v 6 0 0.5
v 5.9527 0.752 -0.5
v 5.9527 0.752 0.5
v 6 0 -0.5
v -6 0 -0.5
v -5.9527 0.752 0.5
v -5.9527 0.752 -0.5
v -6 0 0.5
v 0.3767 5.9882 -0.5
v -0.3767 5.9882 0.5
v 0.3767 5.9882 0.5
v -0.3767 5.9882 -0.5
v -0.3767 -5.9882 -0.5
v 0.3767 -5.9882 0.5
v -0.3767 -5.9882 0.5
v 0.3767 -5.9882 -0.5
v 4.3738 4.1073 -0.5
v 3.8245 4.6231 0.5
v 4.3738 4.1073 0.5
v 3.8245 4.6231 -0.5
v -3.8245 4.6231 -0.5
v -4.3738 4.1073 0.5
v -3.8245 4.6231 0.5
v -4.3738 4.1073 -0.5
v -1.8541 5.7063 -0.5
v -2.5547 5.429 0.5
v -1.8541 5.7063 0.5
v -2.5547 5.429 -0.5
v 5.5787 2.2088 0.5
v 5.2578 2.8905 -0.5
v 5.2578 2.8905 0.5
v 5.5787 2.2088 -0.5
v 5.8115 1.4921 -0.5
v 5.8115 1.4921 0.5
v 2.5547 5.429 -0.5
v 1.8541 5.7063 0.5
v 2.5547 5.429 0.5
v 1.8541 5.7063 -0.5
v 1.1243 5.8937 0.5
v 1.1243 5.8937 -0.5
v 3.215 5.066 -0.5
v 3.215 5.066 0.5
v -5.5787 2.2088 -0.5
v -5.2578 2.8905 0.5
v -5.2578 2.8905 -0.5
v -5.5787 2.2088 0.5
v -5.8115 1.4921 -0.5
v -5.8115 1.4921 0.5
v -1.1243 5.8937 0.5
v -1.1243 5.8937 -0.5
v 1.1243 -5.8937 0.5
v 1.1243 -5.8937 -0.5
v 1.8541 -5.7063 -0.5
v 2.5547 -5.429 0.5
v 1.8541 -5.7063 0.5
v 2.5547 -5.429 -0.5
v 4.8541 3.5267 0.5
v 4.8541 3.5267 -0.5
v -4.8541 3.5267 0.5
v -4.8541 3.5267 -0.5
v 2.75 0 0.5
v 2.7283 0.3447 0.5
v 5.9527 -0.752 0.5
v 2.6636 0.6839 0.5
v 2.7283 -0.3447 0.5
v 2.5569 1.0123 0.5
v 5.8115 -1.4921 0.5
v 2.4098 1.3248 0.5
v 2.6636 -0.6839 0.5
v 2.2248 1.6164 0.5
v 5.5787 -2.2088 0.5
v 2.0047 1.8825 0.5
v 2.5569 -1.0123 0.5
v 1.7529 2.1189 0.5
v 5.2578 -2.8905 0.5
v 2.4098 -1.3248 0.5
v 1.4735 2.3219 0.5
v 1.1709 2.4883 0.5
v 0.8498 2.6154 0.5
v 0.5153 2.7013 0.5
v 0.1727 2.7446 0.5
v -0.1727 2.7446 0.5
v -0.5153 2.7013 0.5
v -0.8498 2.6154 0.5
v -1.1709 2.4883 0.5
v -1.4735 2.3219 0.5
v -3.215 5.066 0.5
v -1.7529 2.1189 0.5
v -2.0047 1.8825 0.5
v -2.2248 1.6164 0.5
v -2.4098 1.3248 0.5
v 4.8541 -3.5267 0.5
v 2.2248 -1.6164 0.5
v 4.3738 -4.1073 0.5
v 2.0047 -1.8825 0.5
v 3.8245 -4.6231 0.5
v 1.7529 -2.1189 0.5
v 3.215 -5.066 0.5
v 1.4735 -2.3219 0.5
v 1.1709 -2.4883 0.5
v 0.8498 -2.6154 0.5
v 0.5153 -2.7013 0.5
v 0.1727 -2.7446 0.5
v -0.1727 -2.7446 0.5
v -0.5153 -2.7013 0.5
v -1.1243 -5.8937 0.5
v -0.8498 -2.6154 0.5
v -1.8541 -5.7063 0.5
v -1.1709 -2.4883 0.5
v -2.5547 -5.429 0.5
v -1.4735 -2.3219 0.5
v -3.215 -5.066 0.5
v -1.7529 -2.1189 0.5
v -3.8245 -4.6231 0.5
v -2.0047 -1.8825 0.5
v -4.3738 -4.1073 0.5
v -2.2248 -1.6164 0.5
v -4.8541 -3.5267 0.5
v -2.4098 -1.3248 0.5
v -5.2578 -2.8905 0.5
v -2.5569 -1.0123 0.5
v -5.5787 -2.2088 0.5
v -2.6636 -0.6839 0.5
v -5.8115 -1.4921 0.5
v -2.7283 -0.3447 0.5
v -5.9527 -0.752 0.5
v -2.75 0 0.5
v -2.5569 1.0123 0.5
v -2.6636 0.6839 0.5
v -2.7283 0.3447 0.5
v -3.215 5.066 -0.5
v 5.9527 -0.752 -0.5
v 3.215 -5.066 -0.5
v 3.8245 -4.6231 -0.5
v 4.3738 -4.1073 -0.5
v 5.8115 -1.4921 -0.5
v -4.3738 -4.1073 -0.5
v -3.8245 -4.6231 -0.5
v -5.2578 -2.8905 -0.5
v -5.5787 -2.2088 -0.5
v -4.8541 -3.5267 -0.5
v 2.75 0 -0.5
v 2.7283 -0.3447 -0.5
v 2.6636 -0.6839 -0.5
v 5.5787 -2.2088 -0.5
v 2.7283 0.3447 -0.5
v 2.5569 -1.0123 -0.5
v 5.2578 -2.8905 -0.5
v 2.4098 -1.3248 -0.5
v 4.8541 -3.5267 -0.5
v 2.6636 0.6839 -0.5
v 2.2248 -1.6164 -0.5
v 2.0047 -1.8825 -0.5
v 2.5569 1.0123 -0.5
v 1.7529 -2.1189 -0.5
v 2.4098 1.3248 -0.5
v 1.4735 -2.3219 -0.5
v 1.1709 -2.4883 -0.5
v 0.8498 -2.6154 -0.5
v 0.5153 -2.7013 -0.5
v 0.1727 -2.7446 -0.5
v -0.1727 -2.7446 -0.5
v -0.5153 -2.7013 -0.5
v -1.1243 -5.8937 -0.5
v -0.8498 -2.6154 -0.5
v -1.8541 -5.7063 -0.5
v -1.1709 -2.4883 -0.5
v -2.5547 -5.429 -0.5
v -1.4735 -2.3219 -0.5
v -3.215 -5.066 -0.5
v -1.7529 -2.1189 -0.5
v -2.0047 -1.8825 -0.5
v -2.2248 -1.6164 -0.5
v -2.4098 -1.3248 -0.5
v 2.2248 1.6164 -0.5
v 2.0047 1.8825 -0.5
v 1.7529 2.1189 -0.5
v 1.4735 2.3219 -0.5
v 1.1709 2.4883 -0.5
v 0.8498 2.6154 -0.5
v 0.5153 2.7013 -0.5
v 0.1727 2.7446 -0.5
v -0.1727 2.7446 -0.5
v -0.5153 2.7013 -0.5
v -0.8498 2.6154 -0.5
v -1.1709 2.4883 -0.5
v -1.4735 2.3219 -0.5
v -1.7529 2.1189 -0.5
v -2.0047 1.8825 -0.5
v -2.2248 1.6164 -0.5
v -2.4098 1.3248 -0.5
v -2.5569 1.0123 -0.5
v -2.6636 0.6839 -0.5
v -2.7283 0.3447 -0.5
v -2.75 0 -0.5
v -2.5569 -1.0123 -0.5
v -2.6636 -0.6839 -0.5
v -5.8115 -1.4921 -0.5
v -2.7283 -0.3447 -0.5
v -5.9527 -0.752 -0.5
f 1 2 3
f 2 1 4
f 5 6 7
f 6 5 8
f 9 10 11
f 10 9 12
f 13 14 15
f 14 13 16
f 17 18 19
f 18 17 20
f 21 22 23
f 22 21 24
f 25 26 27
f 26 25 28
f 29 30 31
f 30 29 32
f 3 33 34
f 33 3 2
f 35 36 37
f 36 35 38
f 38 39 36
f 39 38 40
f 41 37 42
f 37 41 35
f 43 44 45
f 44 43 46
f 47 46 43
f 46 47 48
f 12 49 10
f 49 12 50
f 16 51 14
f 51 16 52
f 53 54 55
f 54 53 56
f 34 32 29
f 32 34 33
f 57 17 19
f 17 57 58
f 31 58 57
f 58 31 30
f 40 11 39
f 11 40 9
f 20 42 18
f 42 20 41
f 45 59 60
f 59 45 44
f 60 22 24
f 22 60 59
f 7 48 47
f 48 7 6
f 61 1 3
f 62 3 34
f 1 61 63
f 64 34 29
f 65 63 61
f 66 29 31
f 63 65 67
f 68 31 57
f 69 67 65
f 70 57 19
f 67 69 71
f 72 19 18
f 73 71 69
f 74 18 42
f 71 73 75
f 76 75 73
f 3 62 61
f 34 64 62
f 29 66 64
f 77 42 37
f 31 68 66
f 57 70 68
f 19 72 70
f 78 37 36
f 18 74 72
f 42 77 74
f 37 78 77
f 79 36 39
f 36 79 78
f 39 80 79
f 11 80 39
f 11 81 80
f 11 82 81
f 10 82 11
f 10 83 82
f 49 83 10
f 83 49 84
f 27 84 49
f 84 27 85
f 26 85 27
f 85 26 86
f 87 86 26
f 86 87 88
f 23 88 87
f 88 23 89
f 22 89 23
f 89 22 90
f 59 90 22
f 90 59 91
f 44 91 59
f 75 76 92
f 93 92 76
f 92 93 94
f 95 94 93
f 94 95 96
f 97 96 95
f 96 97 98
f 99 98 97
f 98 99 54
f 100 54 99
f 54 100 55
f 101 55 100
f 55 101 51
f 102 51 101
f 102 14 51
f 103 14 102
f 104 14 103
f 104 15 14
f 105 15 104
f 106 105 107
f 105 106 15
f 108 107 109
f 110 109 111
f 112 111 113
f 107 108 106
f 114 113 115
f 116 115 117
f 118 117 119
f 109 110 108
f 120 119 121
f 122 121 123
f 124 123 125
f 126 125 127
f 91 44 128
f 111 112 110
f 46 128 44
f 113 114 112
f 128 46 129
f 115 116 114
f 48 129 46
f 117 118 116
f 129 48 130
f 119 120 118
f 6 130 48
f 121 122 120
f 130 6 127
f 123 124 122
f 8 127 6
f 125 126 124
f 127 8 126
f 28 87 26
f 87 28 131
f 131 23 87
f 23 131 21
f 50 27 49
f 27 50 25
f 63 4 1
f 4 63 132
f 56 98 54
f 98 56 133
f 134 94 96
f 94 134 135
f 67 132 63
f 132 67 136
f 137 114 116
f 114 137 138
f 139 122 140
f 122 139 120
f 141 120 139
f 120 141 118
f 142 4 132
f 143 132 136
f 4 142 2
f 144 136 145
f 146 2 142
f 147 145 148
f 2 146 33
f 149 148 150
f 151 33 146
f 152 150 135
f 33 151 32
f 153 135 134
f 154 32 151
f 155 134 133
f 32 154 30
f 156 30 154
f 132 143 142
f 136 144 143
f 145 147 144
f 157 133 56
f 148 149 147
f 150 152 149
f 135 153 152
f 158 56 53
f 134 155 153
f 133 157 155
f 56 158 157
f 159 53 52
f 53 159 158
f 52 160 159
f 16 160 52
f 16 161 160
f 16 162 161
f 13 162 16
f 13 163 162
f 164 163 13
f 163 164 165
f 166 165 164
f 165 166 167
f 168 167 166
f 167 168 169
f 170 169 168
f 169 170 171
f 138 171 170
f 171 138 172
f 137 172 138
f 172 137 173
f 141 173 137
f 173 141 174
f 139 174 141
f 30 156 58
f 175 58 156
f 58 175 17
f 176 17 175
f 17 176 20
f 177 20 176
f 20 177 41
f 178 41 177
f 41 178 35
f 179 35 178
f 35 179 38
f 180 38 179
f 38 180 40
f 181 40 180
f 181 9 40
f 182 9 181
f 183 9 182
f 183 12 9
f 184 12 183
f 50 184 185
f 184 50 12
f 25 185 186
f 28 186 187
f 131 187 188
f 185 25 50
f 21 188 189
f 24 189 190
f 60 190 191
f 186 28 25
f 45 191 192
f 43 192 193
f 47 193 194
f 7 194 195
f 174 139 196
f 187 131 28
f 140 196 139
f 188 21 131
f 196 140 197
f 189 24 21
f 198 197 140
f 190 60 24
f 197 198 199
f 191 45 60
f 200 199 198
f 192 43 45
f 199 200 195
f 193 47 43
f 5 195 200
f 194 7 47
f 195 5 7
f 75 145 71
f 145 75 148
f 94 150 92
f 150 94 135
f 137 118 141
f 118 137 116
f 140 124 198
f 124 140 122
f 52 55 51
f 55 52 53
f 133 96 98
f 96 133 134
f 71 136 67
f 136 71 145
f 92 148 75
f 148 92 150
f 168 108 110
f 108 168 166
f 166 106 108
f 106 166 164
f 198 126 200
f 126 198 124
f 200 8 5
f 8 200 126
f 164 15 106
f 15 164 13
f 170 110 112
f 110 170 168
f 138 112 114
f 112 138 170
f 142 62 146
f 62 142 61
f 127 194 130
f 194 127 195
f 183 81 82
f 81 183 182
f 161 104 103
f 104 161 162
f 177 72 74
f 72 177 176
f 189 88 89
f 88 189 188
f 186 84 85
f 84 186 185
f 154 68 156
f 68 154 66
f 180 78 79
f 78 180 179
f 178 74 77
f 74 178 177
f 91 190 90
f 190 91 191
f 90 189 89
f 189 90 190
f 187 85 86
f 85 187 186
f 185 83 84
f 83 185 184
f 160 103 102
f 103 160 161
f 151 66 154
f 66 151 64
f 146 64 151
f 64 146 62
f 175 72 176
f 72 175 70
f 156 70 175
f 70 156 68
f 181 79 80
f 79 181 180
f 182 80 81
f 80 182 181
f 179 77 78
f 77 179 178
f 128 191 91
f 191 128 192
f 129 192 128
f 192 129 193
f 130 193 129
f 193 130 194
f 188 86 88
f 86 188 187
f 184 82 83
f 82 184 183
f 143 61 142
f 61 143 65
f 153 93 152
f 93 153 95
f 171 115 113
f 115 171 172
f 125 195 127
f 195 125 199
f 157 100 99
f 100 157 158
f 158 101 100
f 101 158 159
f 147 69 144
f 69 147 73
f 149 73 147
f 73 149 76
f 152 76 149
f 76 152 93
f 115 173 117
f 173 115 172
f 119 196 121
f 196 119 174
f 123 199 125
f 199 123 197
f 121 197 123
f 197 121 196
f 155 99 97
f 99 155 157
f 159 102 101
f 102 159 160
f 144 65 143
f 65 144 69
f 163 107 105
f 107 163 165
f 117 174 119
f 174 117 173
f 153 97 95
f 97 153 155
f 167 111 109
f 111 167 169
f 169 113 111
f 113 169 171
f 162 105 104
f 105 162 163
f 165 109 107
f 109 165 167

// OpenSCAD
$fn = 50;


difference() {
	union() {
		translate(v = [0, 0, -0.5000000000]) {
			cylinder(h = 1, r = 6.0000000000);
		}
	}
	union() {
		translate(v = [0, 0, -100.0000000000]) {
			cylinder(h = 200, r = 2.7500000000);
		}
	}
}
